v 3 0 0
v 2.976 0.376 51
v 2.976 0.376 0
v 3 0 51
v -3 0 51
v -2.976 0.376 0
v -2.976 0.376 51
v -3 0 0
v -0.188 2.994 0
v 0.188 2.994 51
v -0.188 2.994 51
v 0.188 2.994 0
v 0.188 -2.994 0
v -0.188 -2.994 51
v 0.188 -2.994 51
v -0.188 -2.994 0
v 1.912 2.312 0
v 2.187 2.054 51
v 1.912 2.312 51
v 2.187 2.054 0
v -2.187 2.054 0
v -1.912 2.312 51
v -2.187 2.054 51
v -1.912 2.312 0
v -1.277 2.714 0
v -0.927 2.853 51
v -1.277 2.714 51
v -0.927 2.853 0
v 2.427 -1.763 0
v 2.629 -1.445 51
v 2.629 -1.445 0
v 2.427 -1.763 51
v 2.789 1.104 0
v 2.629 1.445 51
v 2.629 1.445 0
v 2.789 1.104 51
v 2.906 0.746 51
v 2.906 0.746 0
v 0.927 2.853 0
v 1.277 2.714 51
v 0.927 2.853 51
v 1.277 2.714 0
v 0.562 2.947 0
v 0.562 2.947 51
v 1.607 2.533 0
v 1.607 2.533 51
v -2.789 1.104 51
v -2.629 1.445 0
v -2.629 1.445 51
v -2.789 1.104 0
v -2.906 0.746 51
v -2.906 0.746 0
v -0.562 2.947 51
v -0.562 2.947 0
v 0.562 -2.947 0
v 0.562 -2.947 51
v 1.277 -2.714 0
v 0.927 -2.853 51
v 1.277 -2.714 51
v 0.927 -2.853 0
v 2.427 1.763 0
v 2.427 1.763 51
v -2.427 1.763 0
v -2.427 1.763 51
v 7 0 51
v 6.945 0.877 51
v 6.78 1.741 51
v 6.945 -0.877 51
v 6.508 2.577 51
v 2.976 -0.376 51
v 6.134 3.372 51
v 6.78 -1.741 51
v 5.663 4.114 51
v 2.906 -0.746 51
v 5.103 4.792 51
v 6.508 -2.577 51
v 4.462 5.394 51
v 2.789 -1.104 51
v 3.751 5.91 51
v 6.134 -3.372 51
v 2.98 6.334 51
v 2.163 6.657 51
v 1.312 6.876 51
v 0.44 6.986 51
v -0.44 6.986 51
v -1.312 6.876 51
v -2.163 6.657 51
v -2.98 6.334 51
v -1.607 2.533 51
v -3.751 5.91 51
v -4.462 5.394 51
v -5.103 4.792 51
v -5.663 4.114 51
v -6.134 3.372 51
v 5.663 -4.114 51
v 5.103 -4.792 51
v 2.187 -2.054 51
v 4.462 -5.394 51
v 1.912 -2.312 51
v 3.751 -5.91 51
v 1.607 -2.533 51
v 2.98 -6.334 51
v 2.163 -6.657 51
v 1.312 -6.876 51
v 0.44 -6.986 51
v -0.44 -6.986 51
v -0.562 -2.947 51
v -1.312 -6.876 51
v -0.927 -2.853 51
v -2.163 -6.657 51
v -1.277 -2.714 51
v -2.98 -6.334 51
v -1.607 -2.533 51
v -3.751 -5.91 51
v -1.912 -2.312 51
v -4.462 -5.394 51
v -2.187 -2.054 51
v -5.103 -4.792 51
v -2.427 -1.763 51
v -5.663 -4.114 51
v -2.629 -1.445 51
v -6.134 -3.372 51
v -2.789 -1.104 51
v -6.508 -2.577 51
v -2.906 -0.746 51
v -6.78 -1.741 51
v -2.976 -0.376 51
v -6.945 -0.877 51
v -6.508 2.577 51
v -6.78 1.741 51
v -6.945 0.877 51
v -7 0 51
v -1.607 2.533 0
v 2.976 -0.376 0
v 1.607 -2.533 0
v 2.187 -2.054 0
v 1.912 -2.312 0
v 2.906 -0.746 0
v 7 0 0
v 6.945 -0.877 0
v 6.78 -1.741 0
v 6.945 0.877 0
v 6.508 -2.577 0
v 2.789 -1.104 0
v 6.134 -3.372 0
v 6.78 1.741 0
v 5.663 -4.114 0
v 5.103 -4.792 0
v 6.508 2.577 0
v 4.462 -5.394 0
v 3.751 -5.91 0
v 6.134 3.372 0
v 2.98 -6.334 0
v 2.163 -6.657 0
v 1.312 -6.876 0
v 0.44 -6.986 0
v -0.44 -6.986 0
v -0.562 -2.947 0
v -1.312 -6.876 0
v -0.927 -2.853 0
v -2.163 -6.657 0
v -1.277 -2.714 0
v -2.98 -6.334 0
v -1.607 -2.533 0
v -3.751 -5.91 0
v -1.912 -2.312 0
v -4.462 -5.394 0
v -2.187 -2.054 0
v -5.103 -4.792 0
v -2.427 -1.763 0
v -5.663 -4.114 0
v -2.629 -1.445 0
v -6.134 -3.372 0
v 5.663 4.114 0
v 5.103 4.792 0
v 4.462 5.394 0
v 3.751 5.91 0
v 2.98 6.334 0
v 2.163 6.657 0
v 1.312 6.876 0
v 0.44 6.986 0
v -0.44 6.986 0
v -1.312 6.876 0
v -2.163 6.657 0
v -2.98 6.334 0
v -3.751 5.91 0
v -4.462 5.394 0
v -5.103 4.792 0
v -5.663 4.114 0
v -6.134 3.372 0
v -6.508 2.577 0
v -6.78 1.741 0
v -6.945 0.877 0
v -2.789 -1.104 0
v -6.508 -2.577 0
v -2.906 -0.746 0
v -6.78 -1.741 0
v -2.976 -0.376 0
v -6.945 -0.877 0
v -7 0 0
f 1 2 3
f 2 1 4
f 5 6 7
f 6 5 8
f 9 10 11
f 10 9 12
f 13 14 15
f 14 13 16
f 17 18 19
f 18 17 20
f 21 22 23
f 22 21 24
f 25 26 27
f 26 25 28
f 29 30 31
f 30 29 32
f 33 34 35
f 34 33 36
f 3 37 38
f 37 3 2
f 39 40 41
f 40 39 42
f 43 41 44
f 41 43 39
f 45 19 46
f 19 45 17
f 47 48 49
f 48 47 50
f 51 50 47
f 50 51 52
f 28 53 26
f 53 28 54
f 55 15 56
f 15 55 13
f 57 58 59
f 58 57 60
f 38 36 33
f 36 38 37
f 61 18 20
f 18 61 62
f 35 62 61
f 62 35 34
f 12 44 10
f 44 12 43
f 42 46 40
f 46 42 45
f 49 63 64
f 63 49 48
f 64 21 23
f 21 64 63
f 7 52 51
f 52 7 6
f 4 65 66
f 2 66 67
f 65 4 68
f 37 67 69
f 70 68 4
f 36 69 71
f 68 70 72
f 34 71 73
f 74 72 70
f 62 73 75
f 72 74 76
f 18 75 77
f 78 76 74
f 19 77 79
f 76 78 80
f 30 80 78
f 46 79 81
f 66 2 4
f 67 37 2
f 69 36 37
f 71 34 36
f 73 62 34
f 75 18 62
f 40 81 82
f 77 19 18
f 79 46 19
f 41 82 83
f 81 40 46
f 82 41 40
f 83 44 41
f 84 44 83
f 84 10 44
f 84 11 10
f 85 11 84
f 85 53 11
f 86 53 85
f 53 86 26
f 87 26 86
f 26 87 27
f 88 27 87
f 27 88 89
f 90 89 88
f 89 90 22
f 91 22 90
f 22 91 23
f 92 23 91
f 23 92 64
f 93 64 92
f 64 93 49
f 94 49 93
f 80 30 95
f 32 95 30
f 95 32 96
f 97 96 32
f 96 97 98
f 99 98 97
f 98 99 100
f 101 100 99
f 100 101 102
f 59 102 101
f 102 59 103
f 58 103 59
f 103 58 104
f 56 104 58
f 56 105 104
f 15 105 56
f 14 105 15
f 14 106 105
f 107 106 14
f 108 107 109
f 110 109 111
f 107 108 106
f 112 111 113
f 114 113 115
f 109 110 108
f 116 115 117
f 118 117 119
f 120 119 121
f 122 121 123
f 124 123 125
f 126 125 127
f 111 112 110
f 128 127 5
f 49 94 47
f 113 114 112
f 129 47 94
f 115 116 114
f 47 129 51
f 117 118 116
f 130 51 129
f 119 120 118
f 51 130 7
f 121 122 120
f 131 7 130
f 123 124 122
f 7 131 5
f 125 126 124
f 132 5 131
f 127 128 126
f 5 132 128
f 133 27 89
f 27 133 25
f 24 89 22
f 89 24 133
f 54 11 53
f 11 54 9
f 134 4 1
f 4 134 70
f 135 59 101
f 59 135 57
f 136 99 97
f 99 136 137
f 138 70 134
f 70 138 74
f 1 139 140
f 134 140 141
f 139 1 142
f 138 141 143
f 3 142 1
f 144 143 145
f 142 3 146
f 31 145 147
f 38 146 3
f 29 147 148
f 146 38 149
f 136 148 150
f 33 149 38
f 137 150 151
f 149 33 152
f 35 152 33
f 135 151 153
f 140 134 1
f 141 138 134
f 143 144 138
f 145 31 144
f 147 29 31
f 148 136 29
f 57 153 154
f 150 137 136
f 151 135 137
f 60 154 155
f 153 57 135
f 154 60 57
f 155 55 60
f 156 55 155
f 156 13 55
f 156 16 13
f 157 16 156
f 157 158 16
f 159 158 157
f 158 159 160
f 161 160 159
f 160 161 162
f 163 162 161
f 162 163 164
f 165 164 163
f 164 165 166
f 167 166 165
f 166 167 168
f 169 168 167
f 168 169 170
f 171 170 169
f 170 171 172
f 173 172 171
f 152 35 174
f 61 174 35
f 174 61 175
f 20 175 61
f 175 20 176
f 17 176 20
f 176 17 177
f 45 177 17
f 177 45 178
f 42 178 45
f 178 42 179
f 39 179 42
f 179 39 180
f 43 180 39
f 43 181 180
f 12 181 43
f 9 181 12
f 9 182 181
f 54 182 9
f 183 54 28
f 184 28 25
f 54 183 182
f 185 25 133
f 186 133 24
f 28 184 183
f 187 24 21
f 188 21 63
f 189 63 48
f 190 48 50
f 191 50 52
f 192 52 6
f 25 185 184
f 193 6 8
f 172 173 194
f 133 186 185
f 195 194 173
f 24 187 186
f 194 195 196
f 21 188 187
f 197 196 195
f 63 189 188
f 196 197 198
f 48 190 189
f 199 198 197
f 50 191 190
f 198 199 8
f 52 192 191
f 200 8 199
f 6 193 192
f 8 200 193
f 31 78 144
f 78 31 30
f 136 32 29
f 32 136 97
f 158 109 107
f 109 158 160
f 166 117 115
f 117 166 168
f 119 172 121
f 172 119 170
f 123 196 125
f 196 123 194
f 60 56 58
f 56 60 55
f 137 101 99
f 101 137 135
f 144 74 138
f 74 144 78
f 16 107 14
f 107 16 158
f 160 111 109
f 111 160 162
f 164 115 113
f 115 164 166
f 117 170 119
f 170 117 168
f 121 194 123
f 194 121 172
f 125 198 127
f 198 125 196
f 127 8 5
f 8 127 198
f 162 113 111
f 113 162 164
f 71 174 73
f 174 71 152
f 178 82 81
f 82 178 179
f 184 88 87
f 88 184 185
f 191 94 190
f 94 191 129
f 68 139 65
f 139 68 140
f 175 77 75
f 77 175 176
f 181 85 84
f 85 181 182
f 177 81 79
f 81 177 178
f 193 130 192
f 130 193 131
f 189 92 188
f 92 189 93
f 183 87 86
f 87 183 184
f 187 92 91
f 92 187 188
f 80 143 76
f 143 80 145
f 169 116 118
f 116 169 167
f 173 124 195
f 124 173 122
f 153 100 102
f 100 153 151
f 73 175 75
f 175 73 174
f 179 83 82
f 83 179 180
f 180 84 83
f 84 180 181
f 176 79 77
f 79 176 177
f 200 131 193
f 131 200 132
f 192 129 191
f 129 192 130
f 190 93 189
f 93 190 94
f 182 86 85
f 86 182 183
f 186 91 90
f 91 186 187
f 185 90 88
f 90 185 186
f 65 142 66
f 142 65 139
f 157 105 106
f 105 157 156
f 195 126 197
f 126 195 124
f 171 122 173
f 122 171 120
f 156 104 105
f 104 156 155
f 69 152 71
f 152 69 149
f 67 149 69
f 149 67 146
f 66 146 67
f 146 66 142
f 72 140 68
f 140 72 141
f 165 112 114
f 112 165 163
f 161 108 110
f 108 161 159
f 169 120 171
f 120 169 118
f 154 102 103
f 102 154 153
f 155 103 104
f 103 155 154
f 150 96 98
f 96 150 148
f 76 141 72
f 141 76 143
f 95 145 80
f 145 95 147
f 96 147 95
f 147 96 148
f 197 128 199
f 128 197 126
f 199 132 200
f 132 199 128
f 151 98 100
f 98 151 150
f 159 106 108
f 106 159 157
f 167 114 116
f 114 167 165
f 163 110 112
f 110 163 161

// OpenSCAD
$fn = 50;


difference() {
	union() {
		cylinder(h = 51, r = 7.0000000000);
	}
	union() {
		translate(v = [0, 0, -100]) {
			cylinder(h = 200, r = 3.0000000000);
		}
	}
}
